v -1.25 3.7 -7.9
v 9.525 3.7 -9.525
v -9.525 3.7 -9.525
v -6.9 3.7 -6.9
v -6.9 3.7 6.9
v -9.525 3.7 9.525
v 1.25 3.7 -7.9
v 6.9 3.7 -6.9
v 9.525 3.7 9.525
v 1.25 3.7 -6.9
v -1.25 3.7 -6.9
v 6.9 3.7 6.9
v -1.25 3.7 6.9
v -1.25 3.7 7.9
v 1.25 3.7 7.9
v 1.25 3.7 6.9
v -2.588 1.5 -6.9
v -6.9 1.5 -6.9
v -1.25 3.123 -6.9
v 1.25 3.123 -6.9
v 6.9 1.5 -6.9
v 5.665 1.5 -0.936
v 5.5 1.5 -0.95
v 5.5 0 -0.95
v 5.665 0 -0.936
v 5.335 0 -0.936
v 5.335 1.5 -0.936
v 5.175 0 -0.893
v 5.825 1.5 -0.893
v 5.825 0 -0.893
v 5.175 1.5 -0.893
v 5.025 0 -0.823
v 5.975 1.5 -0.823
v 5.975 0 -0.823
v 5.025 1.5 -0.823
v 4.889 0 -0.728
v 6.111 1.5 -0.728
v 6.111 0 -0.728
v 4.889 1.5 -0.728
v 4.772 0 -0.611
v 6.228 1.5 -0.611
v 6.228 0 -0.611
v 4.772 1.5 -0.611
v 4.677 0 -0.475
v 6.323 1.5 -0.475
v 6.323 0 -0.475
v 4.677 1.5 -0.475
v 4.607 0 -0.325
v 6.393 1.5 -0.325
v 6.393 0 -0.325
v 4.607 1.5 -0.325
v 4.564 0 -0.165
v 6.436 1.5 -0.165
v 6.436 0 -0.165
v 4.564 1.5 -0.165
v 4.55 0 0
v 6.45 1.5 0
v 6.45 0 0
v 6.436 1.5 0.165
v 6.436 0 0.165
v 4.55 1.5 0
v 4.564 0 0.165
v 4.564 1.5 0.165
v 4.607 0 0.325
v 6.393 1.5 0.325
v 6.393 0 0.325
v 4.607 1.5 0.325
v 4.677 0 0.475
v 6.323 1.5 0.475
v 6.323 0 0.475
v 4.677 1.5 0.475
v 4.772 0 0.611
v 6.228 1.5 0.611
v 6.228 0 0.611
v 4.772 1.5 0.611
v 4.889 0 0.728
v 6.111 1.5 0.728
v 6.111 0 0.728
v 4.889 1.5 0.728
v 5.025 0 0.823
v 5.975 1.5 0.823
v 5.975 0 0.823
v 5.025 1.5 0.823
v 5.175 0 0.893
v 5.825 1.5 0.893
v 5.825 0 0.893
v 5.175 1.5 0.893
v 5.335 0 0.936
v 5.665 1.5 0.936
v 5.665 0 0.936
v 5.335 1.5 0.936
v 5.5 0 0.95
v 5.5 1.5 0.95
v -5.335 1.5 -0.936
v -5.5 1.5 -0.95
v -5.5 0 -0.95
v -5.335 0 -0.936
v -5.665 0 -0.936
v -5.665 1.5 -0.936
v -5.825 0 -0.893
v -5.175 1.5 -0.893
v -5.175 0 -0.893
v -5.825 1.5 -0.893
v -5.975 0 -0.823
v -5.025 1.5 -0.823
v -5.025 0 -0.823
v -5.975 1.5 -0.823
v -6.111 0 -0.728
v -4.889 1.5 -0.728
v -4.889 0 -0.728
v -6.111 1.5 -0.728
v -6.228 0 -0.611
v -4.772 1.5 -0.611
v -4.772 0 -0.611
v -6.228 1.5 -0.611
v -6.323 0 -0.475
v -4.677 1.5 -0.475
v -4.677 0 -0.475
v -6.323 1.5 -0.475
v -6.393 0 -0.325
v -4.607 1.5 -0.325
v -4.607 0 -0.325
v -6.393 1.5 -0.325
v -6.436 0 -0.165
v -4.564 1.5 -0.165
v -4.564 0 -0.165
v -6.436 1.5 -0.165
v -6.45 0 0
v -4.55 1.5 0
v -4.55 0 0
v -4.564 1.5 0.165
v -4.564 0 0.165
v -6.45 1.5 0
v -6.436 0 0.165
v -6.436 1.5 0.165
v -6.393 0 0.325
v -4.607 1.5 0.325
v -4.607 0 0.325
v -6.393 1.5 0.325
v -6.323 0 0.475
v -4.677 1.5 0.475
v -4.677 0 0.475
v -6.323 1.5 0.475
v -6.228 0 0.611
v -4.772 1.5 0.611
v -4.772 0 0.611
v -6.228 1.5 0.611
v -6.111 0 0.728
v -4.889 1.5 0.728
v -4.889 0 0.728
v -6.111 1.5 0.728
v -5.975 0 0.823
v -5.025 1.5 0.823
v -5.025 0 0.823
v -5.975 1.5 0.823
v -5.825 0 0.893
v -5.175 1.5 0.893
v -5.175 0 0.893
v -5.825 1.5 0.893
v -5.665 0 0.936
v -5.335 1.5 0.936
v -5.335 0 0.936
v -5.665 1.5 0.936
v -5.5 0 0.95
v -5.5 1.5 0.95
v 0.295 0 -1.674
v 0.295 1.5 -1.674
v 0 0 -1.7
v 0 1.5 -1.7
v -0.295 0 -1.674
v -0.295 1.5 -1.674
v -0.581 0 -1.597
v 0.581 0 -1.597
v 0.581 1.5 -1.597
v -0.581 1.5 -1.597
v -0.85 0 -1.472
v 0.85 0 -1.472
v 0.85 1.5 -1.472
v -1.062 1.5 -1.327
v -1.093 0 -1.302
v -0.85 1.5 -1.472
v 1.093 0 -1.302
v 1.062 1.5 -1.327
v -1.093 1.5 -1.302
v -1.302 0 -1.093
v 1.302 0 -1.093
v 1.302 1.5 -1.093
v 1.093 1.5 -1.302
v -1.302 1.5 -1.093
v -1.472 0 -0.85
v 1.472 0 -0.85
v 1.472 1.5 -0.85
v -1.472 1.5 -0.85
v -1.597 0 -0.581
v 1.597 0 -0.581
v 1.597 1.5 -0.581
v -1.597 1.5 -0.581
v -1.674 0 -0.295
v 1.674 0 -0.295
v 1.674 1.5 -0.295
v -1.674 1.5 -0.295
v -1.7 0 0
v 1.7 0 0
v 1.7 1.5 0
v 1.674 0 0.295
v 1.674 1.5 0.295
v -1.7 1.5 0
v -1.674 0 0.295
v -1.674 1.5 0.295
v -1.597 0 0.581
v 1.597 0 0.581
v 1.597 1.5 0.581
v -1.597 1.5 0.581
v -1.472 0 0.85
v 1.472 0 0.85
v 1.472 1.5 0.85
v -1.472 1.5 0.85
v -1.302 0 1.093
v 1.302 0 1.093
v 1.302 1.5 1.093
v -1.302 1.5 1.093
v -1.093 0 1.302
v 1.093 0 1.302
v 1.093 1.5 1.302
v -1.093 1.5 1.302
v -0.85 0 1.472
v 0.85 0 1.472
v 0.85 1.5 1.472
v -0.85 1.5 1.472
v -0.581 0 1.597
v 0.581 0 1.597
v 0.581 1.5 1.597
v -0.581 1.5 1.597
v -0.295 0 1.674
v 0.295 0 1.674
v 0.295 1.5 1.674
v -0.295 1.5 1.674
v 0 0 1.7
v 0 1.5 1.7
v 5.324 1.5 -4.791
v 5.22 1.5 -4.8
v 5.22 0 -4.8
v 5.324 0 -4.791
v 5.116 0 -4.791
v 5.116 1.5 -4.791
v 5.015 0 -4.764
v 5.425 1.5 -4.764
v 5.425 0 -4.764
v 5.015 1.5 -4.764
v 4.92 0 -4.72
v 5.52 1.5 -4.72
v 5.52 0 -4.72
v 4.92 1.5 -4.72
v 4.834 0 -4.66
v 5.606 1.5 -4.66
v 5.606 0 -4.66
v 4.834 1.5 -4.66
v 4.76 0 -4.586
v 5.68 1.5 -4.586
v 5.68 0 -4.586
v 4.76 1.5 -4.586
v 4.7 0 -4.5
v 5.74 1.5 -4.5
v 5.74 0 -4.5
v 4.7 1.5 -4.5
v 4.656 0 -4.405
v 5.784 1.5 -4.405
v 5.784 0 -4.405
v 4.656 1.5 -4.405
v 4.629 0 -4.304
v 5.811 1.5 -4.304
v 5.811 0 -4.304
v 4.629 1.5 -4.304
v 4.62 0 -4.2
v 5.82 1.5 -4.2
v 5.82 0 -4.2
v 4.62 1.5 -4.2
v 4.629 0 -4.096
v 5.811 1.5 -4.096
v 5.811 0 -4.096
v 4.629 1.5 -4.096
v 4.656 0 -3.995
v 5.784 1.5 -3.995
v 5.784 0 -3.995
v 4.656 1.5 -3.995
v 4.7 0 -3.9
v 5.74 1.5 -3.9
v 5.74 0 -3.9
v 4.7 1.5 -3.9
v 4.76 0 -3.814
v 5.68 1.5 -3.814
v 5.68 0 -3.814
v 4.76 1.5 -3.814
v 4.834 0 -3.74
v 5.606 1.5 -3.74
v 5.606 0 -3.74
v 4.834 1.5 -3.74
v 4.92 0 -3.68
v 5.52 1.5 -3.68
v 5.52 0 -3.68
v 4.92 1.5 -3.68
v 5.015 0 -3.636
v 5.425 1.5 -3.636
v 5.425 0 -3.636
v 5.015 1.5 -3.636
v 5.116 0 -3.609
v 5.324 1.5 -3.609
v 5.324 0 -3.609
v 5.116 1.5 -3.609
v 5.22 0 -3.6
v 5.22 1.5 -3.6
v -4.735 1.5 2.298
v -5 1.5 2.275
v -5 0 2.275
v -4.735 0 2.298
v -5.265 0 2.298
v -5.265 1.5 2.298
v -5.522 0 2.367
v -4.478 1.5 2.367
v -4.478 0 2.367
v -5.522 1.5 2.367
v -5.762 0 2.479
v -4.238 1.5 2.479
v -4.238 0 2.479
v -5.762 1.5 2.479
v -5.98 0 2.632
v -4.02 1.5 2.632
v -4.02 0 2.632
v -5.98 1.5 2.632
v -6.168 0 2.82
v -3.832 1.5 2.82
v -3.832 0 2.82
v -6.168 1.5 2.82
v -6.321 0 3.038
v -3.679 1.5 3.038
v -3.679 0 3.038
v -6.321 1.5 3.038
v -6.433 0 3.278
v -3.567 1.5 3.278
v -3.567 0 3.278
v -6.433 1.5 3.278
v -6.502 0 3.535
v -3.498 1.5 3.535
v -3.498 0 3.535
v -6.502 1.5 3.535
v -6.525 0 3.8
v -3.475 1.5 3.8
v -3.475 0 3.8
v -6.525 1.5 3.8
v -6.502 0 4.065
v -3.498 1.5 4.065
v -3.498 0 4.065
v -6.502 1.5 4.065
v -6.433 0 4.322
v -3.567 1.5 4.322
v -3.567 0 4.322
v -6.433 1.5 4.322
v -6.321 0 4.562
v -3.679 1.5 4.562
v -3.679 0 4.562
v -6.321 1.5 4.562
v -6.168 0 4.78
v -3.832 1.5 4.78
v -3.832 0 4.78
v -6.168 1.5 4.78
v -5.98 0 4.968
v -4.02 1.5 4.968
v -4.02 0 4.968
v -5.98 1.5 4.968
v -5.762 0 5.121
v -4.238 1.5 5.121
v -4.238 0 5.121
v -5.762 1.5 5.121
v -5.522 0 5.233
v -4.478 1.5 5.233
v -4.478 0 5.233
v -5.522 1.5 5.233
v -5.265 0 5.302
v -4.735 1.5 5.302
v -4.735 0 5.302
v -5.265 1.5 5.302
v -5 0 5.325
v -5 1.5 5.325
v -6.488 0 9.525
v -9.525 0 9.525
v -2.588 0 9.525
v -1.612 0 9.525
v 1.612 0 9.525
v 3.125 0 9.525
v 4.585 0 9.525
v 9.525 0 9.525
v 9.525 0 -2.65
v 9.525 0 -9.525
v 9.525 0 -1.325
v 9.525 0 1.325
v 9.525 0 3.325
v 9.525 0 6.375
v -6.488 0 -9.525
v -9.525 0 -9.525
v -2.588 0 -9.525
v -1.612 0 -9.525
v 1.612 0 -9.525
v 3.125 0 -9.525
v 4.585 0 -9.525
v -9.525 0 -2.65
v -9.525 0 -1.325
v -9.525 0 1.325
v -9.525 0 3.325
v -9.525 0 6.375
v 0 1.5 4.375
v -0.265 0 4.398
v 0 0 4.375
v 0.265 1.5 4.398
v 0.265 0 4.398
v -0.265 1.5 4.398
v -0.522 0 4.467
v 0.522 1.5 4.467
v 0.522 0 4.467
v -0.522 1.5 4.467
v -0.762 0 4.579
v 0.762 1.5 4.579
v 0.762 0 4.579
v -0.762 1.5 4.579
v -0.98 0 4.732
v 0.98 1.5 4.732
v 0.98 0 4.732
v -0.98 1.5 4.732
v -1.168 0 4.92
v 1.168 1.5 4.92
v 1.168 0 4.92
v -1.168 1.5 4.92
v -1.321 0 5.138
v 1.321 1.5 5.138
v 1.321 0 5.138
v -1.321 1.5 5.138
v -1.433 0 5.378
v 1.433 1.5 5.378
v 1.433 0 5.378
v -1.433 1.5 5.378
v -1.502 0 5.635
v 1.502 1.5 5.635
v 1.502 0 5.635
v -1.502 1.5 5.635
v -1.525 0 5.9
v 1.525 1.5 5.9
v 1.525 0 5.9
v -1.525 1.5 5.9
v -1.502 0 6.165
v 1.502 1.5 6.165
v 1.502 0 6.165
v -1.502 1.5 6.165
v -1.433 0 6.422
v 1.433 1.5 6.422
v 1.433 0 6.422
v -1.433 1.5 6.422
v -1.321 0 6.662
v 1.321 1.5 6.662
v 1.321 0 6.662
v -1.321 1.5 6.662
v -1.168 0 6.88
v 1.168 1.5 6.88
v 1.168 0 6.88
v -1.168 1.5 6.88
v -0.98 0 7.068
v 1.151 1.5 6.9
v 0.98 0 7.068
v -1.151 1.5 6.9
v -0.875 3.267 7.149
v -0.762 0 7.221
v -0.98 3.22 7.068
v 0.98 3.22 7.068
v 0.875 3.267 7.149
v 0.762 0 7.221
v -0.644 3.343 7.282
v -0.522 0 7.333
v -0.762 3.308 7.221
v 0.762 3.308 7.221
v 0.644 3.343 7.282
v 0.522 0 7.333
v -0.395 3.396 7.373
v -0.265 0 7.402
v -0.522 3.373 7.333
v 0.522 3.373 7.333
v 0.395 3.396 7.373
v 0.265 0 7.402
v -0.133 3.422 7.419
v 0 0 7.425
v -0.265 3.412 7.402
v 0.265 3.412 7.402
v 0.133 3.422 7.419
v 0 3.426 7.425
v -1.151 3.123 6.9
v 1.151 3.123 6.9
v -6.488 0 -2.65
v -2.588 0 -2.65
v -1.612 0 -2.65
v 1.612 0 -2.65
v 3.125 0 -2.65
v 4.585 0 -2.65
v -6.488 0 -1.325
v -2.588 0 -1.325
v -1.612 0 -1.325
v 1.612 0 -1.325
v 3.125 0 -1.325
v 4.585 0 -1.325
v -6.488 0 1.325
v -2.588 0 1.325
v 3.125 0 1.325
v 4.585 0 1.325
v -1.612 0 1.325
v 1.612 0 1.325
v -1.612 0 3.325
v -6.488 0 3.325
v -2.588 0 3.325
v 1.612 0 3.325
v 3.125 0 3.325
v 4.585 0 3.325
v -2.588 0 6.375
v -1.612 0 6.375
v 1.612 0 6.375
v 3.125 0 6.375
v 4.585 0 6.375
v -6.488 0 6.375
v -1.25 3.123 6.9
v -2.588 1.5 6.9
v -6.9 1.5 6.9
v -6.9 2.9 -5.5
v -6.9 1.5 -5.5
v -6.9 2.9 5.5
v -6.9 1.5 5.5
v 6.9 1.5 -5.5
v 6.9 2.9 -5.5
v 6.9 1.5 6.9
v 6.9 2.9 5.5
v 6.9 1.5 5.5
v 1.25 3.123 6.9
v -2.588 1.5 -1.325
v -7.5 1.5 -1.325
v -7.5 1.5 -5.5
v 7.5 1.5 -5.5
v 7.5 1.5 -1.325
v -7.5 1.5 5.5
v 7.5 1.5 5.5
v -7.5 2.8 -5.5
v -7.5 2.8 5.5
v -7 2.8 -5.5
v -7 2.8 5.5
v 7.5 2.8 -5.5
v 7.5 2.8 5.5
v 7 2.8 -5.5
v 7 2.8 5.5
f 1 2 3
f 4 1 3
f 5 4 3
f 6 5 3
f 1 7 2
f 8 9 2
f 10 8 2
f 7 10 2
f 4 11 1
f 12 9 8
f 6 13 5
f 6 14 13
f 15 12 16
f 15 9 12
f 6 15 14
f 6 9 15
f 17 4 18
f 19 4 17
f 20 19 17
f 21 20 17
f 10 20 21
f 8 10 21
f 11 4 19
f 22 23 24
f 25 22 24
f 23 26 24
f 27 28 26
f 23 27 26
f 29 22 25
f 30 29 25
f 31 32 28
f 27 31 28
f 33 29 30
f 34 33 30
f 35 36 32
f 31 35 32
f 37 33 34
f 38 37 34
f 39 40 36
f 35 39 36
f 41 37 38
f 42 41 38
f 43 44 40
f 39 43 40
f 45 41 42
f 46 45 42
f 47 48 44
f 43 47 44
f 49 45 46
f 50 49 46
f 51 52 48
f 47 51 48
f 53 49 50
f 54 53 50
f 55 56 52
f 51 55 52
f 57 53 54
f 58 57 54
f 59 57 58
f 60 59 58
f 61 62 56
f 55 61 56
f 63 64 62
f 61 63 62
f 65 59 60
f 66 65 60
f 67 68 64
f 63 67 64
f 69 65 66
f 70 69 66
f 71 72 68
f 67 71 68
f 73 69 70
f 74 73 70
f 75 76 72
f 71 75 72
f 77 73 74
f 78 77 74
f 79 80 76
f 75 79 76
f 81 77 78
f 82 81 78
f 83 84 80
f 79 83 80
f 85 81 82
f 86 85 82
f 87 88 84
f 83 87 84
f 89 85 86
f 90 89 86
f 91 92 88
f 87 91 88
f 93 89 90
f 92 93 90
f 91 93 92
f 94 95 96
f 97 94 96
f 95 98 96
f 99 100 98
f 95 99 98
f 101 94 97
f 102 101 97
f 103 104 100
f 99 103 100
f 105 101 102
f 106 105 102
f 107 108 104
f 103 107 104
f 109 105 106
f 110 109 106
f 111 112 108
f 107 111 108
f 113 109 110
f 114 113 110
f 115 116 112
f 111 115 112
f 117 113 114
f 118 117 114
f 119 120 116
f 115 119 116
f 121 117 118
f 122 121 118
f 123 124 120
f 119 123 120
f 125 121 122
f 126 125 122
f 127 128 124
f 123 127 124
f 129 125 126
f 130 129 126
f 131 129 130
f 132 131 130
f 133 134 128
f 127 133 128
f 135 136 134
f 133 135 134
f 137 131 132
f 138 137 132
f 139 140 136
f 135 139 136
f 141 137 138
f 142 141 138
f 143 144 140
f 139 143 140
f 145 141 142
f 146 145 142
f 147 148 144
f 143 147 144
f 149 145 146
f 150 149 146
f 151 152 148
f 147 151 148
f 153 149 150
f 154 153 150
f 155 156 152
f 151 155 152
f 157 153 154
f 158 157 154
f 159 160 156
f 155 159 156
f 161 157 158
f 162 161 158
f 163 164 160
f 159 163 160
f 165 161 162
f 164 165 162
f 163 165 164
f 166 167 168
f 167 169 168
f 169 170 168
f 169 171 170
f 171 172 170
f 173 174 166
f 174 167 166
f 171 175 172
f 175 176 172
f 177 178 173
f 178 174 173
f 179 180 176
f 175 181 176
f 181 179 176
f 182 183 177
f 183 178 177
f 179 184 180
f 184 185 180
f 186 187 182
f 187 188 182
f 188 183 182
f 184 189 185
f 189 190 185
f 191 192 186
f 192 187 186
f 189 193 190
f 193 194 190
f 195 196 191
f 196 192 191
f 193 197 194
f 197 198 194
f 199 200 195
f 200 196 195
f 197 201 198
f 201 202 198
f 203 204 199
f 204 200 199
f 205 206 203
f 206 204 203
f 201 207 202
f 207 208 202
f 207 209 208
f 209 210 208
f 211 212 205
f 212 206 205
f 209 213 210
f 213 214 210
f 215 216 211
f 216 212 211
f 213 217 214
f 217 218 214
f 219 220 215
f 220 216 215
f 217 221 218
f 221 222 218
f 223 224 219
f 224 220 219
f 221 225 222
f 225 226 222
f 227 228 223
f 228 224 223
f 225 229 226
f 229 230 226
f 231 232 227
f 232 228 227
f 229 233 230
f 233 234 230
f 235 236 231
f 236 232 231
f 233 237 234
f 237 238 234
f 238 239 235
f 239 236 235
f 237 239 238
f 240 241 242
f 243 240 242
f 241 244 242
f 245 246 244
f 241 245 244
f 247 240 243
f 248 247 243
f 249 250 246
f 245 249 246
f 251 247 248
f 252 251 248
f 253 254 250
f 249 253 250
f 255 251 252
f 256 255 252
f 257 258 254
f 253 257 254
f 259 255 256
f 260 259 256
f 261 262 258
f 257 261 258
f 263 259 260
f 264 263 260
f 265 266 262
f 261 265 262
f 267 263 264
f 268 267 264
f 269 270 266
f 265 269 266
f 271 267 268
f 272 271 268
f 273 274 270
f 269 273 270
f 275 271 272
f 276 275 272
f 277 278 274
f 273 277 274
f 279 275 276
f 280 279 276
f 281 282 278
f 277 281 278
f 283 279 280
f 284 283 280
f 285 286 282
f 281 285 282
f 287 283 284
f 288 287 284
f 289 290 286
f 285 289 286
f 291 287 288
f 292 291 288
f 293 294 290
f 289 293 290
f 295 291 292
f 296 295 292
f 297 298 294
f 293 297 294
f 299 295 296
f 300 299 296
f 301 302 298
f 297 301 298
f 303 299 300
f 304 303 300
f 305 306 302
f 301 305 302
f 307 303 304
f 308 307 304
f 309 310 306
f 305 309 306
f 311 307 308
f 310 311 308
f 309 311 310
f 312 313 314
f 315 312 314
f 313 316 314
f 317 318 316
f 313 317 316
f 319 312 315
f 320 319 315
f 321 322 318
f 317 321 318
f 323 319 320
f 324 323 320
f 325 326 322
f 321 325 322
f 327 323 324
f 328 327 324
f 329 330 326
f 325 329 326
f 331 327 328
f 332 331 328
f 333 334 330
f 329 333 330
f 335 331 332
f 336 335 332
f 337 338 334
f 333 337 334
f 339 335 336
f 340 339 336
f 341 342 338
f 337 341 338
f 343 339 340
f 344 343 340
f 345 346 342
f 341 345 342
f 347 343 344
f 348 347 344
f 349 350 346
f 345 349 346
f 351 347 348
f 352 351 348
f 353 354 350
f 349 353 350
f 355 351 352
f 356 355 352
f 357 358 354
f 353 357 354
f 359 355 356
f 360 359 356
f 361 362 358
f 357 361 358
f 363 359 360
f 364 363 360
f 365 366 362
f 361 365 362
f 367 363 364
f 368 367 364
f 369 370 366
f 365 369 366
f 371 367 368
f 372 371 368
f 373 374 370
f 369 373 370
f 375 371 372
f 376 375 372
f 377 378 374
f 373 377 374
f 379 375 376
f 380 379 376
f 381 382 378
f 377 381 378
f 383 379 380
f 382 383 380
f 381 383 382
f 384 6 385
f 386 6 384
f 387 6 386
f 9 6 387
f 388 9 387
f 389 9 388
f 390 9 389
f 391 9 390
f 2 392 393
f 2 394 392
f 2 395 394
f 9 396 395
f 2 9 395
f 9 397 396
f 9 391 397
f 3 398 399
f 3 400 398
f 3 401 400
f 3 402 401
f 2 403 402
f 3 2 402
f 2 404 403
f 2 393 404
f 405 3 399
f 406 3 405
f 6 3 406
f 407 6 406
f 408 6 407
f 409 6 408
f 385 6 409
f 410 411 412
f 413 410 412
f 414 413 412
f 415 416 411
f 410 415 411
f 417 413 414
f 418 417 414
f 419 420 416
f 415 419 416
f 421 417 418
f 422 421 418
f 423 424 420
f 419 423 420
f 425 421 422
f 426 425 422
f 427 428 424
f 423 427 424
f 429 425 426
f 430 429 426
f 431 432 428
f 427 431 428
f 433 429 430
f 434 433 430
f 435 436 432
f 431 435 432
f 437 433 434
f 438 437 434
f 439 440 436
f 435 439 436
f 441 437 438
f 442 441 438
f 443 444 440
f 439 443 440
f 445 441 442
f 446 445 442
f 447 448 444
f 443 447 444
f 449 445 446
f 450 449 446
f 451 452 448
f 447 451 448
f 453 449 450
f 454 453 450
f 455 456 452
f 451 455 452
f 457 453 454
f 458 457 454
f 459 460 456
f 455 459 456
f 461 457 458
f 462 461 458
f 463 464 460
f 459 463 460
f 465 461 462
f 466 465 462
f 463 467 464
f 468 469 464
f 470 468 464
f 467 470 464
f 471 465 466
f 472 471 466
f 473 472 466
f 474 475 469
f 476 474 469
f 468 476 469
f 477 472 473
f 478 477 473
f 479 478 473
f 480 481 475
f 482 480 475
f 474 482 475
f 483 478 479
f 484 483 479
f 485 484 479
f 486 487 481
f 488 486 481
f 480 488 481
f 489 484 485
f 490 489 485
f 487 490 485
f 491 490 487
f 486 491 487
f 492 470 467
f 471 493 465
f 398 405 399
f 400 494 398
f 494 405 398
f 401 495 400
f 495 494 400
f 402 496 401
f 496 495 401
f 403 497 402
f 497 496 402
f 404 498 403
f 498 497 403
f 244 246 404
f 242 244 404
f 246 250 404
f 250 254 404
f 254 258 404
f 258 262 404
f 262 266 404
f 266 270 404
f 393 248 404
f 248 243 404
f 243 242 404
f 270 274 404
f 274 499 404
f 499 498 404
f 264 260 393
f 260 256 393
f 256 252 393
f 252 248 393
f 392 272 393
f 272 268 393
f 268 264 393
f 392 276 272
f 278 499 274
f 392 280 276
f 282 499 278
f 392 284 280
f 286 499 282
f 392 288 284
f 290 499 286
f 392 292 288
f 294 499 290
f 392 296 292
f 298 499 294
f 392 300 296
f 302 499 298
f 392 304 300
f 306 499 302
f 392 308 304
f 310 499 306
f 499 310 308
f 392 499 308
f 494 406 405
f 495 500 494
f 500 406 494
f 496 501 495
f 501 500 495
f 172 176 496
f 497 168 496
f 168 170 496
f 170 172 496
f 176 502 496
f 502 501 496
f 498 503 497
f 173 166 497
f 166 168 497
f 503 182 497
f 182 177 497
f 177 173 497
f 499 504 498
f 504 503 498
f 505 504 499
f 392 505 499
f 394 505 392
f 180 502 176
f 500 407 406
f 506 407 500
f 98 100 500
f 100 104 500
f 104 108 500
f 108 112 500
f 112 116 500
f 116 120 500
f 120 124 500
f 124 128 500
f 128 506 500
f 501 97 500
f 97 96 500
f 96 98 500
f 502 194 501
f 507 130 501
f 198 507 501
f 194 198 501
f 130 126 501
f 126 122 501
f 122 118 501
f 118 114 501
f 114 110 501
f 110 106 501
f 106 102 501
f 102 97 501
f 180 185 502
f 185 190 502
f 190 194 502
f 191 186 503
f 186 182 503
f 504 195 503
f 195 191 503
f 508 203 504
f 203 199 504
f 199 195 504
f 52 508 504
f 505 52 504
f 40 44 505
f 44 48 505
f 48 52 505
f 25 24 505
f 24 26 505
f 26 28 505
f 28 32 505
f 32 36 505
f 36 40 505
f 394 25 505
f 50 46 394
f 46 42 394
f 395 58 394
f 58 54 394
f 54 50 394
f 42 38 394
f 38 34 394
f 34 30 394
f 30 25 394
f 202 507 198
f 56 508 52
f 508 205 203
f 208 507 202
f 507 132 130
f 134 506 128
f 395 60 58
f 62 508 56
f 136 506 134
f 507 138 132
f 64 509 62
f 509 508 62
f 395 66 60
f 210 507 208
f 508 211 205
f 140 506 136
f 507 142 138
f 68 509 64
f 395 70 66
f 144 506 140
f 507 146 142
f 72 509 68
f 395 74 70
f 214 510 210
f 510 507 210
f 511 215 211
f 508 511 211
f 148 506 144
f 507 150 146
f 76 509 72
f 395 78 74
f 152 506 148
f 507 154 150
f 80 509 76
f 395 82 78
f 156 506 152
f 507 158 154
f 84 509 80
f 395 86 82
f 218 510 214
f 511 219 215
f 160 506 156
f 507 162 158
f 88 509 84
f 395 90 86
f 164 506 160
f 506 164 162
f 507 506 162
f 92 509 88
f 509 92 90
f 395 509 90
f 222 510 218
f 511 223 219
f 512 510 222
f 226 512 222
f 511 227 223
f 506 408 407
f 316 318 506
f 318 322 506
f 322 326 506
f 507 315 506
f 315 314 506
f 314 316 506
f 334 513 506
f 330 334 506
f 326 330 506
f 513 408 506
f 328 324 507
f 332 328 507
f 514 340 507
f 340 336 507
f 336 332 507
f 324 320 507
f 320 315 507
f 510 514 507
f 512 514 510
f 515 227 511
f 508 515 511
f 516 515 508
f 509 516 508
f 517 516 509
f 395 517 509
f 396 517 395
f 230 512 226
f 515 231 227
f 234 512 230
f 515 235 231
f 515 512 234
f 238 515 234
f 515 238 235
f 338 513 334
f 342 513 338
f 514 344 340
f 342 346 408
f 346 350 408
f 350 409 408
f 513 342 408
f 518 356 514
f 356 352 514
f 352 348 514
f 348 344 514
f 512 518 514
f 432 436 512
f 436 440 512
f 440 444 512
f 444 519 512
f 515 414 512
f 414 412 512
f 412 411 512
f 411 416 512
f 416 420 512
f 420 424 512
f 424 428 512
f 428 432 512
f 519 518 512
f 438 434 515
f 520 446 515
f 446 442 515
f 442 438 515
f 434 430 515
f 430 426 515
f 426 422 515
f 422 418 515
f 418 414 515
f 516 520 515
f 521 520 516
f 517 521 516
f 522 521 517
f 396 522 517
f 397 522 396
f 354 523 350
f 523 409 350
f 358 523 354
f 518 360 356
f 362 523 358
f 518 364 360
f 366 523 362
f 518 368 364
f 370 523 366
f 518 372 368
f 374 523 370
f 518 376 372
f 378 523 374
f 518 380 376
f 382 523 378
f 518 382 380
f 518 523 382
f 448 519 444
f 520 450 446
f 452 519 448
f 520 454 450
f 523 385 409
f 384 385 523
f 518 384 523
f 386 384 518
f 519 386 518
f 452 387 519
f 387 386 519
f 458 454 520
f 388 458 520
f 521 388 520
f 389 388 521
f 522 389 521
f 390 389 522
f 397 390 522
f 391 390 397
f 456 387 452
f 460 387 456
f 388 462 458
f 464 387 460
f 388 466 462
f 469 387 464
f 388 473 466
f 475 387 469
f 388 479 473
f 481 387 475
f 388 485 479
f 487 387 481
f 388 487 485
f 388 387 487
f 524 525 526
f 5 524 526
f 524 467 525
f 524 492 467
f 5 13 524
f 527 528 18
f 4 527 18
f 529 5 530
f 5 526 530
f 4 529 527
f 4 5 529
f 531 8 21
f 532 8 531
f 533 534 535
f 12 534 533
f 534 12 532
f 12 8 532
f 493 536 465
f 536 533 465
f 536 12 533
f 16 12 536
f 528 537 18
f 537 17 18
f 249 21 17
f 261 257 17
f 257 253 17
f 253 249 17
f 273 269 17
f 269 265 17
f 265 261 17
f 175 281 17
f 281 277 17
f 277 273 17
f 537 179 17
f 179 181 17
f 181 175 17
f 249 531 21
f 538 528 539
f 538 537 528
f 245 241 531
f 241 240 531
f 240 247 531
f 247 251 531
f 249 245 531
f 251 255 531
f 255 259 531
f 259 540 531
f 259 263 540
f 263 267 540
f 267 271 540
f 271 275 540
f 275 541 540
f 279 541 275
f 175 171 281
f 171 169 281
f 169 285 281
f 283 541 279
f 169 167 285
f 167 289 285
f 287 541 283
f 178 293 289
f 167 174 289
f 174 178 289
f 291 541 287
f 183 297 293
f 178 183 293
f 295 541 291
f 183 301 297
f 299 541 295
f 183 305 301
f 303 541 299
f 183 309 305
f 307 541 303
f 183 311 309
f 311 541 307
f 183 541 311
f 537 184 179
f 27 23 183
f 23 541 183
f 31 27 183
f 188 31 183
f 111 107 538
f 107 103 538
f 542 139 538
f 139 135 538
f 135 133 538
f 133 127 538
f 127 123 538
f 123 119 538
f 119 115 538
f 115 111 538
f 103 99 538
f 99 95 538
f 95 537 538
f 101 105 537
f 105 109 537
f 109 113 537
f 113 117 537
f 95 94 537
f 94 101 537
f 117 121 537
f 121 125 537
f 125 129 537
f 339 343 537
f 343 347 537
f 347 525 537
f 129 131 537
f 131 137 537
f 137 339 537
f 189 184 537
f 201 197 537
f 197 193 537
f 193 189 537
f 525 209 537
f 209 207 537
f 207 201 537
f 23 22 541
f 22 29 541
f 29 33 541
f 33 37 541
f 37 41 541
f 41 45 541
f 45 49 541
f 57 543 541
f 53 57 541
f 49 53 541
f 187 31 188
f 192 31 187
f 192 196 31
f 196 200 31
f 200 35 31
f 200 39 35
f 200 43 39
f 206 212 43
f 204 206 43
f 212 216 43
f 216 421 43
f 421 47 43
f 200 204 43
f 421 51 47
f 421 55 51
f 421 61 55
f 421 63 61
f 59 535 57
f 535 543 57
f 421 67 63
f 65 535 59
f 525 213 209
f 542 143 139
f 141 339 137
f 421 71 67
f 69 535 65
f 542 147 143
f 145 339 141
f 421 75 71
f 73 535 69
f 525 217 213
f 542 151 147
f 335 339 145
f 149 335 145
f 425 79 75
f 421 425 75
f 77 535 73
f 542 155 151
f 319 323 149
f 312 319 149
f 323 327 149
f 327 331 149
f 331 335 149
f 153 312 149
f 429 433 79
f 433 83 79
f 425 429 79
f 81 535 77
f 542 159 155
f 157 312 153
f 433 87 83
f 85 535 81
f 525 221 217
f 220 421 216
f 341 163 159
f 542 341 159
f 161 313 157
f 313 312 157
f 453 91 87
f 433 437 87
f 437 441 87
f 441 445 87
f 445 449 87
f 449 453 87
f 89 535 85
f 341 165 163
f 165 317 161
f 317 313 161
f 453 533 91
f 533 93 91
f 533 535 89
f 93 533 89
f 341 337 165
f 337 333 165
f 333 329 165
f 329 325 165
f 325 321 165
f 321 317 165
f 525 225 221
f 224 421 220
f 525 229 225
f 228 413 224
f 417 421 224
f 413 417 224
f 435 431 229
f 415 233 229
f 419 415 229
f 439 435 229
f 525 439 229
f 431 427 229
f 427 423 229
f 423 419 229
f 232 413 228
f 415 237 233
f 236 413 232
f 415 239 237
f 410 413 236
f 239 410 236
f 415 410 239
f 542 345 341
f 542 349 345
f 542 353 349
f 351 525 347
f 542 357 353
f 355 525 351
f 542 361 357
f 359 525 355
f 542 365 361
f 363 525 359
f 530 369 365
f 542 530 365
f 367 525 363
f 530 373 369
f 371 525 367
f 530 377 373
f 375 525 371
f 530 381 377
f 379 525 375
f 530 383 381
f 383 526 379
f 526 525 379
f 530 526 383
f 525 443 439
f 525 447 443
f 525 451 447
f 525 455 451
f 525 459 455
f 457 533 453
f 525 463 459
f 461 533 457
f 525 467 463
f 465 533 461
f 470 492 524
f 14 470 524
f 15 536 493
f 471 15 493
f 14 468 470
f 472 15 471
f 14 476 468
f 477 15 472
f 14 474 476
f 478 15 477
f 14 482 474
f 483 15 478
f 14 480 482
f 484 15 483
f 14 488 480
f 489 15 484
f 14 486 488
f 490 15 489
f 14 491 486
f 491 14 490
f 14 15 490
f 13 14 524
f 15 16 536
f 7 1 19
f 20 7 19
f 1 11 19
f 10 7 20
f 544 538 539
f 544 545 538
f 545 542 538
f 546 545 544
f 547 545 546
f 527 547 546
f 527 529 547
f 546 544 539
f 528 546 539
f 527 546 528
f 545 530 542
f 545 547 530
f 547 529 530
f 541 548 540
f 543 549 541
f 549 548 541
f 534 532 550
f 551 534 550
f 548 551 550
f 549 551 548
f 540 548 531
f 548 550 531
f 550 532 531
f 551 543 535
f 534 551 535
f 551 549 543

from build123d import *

# Parameters (mm, degrees)
SKETCH1_W           = 19.05
SKETCH1_H           = 19.05
SKETCH1_R           = 1.5
SKETCH1_R_2         = 0.95
SKETCH1_R_3         = 1.7
SKETCH1_R_4         = 0.6
BOSS_EXTRUDE1_DEPTH = 3.7
CUT_EXTRUDE1_START  = 3.7
SKETCH1_3_R         = 1.5
SKETCH1_3_R_2       = 0.95
SKETCH1_3_R_3       = 1.7
SKETCH1_3_R_4       = 0.6
CUT_EXTRUDE1_DEPTH  = 2.2
CUT_EXTRUDE2_DEPTH  = 1.25
CUT_EXTRUDE3_DEPTH  = 5.5


with BuildPart() as part:
    # Sketch1 → Boss-Extrude1 (new body)
    with BuildSketch(Plane(origin=(0, 0, 0), x_dir=(1, 0, 0), z_dir=(0, 1, 0))):
        Rectangle(SKETCH1_W, SKETCH1_H)
        with BuildLine():
            Line((-6.9, -6.9), (-6.9, 6.9))
            Line((-6.9, 6.9), (6.9, 6.9))
            Line((6.9, 6.9), (6.9, -6.9))
            Line((6.9, -6.9), (1.118033989, -6.9))
            ThreePointArc((1.118033989, -6.9), (0, -7.4), (-1.118033989, -6.9))
            Line((-1.118033989, -6.9), (-6.9, -6.9))
        make_face(mode=Mode.SUBTRACT)
        with BuildLine():
            Line((6.9, 6.9), (-6.9, 6.9))
            Line((-6.9, 6.9), (-6.9, -6.9))
            Line((-6.9, -6.9), (-1.118033989, -6.9))
            ThreePointArc((-1.118033989, -6.9), (-0.535233135, -4.498741462), (1.5, -5.9))
            ThreePointArc((1.5, -5.9), (1.401258538, -6.435233135), (1.118033989, -6.9))
            Line((1.118033989, -6.9), (6.9, -6.9))
            Line((6.9, -6.9), (6.9, 6.9))
        make_face()
        with Locations((-5, -3.8)):
            Circle(SKETCH1_R, mode=Mode.SUBTRACT)
        with Locations((5.5, 0)):
            Circle(SKETCH1_R_2, mode=Mode.SUBTRACT)
        with Locations((-5.5, 0)):
            Circle(SKETCH1_R_2, mode=Mode.SUBTRACT)
        Circle(SKETCH1_R_3, mode=Mode.SUBTRACT)
        with Locations((5.22, 4.2)):
            Circle(SKETCH1_R_4, mode=Mode.SUBTRACT)
    extrude(amount=BOSS_EXTRUDE1_DEPTH)

    # Sketch1<3> → Cut-Extrude1 (cut)
    with BuildSketch(Plane(origin=(0, 0, 0), x_dir=(1, 0, 0), z_dir=(0, 1, 0)).offset(CUT_EXTRUDE1_START)):
        with BuildLine():
            Line((6.9, 6.9), (-6.9, 6.9))
            Line((-6.9, 6.9), (-6.9, -6.9))
            Line((-6.9, -6.9), (-1.118033989, -6.9))
            ThreePointArc((-1.118033989, -6.9), (-0.535233135, -4.498741462), (1.5, -5.9))
            ThreePointArc((1.5, -5.9), (1.401258538, -6.435233135), (1.118033989, -6.9))
            Line((1.118033989, -6.9), (6.9, -6.9))
            Line((6.9, -6.9), (6.9, 6.9))
        make_face()
        with Locations((-5, -3.8)):
            Circle(SKETCH1_3_R, mode=Mode.SUBTRACT)
        with Locations((5.5, 0)):
            Circle(SKETCH1_3_R_2, mode=Mode.SUBTRACT)
        with Locations((-5.5, 0)):
            Circle(SKETCH1_3_R_2, mode=Mode.SUBTRACT)
        Circle(SKETCH1_3_R_3, mode=Mode.SUBTRACT)
        with Locations((5.22, 4.2)):
            Circle(SKETCH1_3_R_4, mode=Mode.SUBTRACT)
    extrude(amount=-CUT_EXTRUDE1_DEPTH, mode=Mode.SUBTRACT)

    # Sketch2 → Cut-Extrude2 (cut, symmetric)
    with BuildSketch(Plane(origin=(0, 0, 0), x_dir=(0, 0, -1), z_dir=(1, 0, 0))):
        Polygon((-7.9, 3.7), (-6.9, 3.7), (-6.9, 3.122649731), align=None)
    cut_extrude2 = extrude(amount=CUT_EXTRUDE2_DEPTH, both=True, mode=Mode.SUBTRACT)

    # Mirror1: Cut-Extrude2 across plane
    add(cut_extrude2.mirror(Plane.XY), mode=Mode.SUBTRACT)

    # Sketch4 → Cut-Extrude3 (cut, symmetric)
    with BuildSketch(Plane.XY):
        Polygon((-6.9, 2.9), (-6.9, 1.5), (-7.5, 1.5), (-7.5, 2.8), (-7, 2.8), align=None)
    cut_extrude3 = extrude(amount=CUT_EXTRUDE3_DEPTH, both=True, mode=Mode.SUBTRACT)

    # Mirror2: Cut-Extrude3 across plane
    add(cut_extrude3.mirror(Plane(origin=(0, 0, 0), x_dir=(0, 0, 1), z_dir=(1, 0, 0))), mode=Mode.SUBTRACT)


solid = part.part
